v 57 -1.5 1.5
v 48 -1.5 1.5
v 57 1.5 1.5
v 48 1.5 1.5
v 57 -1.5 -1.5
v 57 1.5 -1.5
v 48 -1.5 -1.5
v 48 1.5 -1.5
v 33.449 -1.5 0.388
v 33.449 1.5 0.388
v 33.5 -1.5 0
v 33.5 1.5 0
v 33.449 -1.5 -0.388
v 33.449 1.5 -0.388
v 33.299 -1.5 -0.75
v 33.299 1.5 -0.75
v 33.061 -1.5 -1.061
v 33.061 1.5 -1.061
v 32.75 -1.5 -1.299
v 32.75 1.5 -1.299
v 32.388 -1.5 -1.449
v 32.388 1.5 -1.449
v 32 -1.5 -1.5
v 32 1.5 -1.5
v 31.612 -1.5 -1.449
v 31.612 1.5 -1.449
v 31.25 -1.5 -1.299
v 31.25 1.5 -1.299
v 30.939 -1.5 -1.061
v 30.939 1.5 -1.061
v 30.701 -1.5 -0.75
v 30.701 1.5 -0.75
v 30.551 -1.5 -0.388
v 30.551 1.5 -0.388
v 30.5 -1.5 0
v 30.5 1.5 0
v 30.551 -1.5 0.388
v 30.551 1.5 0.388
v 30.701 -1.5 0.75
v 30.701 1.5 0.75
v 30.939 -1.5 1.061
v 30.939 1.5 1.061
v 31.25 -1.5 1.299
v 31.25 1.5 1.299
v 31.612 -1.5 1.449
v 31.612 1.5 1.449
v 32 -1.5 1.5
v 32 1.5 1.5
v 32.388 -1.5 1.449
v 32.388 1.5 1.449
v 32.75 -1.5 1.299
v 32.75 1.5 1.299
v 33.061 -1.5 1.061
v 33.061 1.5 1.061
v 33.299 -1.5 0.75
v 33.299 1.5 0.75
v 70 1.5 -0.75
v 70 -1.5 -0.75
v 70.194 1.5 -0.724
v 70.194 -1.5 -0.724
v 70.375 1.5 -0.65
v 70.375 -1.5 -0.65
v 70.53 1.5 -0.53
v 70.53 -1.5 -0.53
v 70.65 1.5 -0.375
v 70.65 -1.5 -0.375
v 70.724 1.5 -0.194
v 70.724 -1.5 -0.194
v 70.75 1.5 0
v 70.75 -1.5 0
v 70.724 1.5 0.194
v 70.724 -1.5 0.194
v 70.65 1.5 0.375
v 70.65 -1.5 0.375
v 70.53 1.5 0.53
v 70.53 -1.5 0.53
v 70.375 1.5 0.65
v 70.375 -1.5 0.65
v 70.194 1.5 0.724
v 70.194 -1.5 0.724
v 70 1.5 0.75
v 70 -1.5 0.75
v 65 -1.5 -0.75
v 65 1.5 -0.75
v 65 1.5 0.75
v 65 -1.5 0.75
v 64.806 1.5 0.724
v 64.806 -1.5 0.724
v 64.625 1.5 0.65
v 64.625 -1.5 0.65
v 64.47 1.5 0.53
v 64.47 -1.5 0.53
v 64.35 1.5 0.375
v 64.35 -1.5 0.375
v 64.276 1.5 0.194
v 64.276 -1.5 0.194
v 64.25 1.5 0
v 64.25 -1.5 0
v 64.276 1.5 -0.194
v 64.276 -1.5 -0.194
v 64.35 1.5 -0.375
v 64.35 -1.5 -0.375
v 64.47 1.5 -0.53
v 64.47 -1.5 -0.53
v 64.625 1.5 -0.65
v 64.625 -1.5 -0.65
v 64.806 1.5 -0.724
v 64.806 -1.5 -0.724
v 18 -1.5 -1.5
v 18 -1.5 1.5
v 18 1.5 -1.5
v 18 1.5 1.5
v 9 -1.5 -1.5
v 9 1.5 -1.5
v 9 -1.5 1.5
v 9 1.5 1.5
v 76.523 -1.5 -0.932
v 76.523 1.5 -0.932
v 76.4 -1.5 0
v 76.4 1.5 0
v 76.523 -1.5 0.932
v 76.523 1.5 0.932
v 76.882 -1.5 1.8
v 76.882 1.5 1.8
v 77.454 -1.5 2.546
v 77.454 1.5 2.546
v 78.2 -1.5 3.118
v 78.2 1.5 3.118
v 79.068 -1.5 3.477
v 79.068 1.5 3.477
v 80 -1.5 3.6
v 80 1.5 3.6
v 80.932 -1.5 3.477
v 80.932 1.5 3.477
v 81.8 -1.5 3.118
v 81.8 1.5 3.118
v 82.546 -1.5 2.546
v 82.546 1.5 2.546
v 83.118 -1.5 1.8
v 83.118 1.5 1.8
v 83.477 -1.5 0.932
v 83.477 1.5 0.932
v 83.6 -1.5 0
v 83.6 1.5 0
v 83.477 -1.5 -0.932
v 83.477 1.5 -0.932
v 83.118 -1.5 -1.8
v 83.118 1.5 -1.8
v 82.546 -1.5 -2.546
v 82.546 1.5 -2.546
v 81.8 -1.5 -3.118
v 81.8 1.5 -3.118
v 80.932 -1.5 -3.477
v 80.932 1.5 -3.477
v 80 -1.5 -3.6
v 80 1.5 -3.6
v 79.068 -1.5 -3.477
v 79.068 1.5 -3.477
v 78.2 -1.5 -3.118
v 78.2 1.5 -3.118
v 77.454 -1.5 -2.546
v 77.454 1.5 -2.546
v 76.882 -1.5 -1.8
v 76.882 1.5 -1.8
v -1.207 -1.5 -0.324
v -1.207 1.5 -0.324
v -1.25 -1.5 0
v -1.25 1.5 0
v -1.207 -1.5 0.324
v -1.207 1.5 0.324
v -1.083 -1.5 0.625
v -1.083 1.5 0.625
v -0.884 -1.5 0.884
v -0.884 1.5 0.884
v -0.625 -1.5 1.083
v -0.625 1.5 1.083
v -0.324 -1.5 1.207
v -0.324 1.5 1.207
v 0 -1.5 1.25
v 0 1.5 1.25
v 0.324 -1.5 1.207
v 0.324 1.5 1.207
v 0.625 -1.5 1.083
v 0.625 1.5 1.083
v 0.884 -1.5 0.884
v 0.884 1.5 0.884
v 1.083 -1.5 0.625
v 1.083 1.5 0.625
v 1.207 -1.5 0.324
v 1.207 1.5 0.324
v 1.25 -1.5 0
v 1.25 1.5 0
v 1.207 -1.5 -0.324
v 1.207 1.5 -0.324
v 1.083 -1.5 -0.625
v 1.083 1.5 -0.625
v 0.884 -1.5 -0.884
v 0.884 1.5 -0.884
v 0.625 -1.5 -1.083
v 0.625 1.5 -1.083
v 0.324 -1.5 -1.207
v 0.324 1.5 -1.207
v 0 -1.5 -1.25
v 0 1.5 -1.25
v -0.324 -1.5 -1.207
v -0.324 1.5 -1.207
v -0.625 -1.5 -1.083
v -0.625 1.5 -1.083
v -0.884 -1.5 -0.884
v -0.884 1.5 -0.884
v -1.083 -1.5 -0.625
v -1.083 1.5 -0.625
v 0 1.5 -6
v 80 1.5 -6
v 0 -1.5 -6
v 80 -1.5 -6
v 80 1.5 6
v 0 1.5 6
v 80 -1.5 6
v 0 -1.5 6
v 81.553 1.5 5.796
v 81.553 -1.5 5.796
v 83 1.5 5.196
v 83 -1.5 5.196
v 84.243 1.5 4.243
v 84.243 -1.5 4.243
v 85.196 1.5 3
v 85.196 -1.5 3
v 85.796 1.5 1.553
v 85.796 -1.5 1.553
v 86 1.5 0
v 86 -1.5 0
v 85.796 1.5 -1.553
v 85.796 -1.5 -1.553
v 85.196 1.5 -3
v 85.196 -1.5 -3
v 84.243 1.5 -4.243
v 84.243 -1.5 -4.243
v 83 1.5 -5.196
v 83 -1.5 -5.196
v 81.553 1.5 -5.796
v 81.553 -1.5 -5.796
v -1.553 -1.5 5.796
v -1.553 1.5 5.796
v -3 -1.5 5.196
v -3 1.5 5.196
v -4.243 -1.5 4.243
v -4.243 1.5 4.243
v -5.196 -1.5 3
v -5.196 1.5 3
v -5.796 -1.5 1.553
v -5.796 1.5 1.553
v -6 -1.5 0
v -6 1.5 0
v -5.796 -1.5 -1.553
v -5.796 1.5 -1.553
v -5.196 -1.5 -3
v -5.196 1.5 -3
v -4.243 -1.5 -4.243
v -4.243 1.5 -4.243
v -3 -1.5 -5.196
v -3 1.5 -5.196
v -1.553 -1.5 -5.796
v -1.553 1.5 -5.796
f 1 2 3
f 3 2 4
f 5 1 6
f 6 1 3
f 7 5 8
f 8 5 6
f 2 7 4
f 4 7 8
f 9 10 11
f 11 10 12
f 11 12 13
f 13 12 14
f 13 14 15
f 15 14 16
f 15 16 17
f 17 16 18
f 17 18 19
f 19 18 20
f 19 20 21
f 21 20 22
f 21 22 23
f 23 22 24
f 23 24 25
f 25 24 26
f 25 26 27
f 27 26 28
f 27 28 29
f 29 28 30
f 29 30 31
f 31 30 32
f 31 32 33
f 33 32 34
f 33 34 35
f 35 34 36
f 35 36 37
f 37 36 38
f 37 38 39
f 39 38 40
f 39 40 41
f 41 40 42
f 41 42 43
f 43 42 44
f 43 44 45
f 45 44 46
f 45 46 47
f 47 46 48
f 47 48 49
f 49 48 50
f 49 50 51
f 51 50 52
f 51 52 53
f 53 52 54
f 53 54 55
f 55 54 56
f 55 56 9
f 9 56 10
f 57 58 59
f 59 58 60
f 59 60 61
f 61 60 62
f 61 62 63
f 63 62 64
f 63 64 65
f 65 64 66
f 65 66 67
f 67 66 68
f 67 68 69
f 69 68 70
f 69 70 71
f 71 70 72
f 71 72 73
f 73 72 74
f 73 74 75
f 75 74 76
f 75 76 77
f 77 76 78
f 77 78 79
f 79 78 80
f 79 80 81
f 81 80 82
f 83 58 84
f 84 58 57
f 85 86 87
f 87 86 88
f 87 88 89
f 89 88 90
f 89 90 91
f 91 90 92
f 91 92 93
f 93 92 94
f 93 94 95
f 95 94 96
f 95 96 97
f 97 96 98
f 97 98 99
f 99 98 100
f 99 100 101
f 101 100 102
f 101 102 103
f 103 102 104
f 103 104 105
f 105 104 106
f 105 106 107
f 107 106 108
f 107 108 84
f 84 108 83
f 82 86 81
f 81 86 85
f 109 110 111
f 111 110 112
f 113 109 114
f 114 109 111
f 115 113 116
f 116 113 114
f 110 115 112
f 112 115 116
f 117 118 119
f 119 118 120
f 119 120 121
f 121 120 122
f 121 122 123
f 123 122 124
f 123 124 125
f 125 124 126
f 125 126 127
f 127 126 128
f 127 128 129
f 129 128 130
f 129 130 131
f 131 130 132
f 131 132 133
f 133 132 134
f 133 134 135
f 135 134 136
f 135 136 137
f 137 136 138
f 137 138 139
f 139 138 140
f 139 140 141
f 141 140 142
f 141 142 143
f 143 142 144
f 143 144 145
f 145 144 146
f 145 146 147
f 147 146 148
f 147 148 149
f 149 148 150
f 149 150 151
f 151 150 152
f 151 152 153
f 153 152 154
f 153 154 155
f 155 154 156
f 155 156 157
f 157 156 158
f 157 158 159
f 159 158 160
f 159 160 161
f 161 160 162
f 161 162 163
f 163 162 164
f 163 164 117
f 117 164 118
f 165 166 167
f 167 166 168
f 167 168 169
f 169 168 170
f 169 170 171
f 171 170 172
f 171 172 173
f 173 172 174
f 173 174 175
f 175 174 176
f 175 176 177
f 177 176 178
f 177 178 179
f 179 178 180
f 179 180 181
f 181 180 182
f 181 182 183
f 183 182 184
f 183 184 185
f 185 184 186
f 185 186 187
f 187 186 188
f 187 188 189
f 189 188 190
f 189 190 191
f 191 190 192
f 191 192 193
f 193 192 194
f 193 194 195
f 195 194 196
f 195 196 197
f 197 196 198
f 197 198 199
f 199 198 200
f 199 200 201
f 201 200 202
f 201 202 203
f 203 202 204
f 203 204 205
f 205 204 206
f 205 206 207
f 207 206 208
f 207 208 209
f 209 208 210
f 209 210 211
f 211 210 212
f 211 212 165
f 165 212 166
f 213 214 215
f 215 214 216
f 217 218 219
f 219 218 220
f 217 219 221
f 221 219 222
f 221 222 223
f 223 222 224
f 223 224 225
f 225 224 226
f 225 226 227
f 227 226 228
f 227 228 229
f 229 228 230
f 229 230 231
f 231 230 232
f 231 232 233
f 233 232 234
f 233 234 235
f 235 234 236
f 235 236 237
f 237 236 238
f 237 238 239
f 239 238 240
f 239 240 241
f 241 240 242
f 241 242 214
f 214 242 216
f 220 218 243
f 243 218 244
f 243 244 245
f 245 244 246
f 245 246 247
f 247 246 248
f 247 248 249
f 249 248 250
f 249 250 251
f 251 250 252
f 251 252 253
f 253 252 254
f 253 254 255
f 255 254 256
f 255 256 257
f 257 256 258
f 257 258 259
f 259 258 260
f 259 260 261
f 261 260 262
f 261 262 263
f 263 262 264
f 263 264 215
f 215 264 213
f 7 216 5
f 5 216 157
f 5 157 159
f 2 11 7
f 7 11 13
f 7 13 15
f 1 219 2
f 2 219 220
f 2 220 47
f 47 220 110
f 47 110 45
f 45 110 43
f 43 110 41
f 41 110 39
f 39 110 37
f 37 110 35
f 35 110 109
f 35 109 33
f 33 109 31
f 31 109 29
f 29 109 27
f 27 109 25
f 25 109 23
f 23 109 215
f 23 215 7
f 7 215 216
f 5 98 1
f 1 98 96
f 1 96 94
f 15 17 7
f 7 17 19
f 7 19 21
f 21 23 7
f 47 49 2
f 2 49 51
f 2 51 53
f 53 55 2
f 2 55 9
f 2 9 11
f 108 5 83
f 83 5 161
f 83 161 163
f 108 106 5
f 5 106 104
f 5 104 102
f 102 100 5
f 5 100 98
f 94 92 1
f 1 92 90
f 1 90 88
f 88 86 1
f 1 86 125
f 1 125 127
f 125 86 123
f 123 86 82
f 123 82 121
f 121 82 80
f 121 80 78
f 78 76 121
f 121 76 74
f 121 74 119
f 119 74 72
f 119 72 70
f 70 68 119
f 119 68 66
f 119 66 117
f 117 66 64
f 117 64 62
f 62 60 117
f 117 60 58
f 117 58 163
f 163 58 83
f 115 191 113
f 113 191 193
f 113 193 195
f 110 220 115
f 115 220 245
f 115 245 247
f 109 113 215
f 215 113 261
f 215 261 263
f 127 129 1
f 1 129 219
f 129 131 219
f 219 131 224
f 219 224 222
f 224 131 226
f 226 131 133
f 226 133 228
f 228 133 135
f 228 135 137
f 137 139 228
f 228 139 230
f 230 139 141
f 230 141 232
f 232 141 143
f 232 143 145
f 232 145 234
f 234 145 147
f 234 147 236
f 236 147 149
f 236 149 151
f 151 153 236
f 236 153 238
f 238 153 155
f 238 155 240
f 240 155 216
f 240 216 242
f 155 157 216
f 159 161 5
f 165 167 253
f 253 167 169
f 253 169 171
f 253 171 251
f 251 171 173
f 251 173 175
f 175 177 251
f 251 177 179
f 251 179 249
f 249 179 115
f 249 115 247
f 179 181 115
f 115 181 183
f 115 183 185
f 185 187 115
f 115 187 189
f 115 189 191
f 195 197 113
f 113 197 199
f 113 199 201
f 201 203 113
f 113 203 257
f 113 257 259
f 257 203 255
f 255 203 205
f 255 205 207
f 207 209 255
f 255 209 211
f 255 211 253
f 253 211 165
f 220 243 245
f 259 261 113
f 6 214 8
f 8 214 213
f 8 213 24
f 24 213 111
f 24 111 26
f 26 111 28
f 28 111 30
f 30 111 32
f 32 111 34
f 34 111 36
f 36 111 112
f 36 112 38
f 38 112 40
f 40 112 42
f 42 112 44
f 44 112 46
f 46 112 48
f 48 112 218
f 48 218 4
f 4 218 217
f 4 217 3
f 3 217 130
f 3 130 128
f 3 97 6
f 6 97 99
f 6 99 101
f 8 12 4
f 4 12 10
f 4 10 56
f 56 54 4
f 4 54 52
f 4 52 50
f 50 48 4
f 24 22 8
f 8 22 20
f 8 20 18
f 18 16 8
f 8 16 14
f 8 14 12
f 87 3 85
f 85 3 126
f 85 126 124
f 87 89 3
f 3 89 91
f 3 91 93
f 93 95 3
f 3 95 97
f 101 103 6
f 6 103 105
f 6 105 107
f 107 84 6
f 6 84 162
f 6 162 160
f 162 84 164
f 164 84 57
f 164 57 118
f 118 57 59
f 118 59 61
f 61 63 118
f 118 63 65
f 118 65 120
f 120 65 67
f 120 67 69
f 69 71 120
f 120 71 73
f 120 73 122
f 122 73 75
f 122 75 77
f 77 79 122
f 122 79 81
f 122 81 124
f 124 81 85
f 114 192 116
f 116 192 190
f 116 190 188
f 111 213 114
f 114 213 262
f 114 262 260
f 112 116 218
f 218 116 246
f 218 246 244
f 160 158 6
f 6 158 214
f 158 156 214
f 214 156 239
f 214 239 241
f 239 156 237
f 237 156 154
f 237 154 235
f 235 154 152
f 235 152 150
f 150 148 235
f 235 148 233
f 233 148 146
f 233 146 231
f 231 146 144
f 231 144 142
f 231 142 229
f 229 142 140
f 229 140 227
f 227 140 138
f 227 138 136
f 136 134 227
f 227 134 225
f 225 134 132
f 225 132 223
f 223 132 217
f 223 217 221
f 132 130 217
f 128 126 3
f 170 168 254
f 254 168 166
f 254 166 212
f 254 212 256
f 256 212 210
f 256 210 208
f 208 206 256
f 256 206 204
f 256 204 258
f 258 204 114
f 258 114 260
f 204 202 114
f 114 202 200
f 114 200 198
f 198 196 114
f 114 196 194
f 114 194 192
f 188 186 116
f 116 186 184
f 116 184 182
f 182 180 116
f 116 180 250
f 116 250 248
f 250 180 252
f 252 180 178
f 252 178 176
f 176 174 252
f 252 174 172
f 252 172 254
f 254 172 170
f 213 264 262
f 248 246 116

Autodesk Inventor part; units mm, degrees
ref_plane "YZ Plane" through (0, 0, 0) normal (1, 0, 0) x (0, 1, 0)
ref_plane "XZ Plane" through (0, 0, 0) normal (0, 1, 0) x (-1, 0, 0)
ref_plane "XY Plane" through (0, 0, 0) normal (0, 0, 1) x (1, 0, 0)
sketch "草圖1" plane through (0, 0, 0) normal (0, 1, 0) x (-1, 0, 0)
  circle A0 centre (0, 0) radius 1.25
  line L0 (0, 0) -> (-80, 0)
  circle A1 centre (-80, 0) radius 3.6
  circle A2 centre (-80, 0) radius 6
  circle A3 centre (0, 0) radius 6
  line L1 (0, 6) -> (-80, 6)
  line L2 (-80, -6) -> (0, -6)
  dimension "d0" = 2.5
  dimension "d14" = 80
  dimension "d15" = 7.2
  dimension "d16" = 12
  dimension "d17" = 12
extrude "擠出1" add sketch "草圖1" along normal mid plane 3
sketch "草圖2" plane through (0, 1.5, 0) normal (0, 1, 0) x (1, 0, 0)
  circle A0 centre (80, 0) radius 3.6 projected
  circle A1 centre (0, 0) radius 1.25 projected
  arc A2 (0, 6) -> (0, -6) centre (0, 0) ccw projected
  line L0 (0, -6) -> (80, -6) projected
  arc A3 (80, -6) -> (80, 6) centre (80, 0) ccw projected
  line L1 (80, 6) -> (0, 6) projected
  line L2 (80, 0) -> (70, 0)
  line L3 (70, 0) -> (65, 0) construction
  line L4 (70, 0.75) -> (65, 0.75)
  line L5 (65, -0.75) -> (70, -0.75)
  arc A4 (70, -0.75) -> (70, 0.75) centre (70, 0) ccw
  arc A5 (65, 0.75) -> (65, -0.75) centre (65, 0) ccw
  line L6 (65, 0) -> (57, 0)
  line L7 (57, 0) -> (57, 1.5)
  line L8 (57, 1.5) -> (48, 1.5)
  line L9 (48, 1.5) -> (48, -1.5)
  line L10 (48, -1.5) -> (57, -1.5)
  line L11 (57, -1.5) -> (57, 0)
  line L12 (48, 0) -> (32, 0)
  circle A6 centre (32, 0) radius 1.5
  line L13 (32, 0) -> (18, 0)
  line L14 (18, 0) -> (18, 1.5)
  line L15 (18, 1.5) -> (9, 1.5)
  line L16 (9, 1.5) -> (9, -1.5)
  line L17 (9, -1.5) -> (18, -1.5)
  line L18 (18, -1.5) -> (18, 0)
  point P0 (67.5, 0)
  dimension "d18" = 10
  dimension "d19" = 5
  dimension "d20" = 1.5
  dimension "d21" = 8
  dimension "d22" = 1.5
  dimension "d23" = 9
  dimension "d24" = 3
  dimension "d25" = 16
  dimension "d27" = 3
  dimension "d28" = 14
  dimension "d29" = 1.5
  dimension "d30" = 9
  dimension "d31" = 3
extrude "擠出2" cut sketch "草圖2" against normal blind 10 contours L18 L17 L16 L15 L14 | A6 L13 L12 | L12 L13 A6 | L11 L10 L9 L8 L7 | A4 L5 A5 L4
properties part number "連接3"
